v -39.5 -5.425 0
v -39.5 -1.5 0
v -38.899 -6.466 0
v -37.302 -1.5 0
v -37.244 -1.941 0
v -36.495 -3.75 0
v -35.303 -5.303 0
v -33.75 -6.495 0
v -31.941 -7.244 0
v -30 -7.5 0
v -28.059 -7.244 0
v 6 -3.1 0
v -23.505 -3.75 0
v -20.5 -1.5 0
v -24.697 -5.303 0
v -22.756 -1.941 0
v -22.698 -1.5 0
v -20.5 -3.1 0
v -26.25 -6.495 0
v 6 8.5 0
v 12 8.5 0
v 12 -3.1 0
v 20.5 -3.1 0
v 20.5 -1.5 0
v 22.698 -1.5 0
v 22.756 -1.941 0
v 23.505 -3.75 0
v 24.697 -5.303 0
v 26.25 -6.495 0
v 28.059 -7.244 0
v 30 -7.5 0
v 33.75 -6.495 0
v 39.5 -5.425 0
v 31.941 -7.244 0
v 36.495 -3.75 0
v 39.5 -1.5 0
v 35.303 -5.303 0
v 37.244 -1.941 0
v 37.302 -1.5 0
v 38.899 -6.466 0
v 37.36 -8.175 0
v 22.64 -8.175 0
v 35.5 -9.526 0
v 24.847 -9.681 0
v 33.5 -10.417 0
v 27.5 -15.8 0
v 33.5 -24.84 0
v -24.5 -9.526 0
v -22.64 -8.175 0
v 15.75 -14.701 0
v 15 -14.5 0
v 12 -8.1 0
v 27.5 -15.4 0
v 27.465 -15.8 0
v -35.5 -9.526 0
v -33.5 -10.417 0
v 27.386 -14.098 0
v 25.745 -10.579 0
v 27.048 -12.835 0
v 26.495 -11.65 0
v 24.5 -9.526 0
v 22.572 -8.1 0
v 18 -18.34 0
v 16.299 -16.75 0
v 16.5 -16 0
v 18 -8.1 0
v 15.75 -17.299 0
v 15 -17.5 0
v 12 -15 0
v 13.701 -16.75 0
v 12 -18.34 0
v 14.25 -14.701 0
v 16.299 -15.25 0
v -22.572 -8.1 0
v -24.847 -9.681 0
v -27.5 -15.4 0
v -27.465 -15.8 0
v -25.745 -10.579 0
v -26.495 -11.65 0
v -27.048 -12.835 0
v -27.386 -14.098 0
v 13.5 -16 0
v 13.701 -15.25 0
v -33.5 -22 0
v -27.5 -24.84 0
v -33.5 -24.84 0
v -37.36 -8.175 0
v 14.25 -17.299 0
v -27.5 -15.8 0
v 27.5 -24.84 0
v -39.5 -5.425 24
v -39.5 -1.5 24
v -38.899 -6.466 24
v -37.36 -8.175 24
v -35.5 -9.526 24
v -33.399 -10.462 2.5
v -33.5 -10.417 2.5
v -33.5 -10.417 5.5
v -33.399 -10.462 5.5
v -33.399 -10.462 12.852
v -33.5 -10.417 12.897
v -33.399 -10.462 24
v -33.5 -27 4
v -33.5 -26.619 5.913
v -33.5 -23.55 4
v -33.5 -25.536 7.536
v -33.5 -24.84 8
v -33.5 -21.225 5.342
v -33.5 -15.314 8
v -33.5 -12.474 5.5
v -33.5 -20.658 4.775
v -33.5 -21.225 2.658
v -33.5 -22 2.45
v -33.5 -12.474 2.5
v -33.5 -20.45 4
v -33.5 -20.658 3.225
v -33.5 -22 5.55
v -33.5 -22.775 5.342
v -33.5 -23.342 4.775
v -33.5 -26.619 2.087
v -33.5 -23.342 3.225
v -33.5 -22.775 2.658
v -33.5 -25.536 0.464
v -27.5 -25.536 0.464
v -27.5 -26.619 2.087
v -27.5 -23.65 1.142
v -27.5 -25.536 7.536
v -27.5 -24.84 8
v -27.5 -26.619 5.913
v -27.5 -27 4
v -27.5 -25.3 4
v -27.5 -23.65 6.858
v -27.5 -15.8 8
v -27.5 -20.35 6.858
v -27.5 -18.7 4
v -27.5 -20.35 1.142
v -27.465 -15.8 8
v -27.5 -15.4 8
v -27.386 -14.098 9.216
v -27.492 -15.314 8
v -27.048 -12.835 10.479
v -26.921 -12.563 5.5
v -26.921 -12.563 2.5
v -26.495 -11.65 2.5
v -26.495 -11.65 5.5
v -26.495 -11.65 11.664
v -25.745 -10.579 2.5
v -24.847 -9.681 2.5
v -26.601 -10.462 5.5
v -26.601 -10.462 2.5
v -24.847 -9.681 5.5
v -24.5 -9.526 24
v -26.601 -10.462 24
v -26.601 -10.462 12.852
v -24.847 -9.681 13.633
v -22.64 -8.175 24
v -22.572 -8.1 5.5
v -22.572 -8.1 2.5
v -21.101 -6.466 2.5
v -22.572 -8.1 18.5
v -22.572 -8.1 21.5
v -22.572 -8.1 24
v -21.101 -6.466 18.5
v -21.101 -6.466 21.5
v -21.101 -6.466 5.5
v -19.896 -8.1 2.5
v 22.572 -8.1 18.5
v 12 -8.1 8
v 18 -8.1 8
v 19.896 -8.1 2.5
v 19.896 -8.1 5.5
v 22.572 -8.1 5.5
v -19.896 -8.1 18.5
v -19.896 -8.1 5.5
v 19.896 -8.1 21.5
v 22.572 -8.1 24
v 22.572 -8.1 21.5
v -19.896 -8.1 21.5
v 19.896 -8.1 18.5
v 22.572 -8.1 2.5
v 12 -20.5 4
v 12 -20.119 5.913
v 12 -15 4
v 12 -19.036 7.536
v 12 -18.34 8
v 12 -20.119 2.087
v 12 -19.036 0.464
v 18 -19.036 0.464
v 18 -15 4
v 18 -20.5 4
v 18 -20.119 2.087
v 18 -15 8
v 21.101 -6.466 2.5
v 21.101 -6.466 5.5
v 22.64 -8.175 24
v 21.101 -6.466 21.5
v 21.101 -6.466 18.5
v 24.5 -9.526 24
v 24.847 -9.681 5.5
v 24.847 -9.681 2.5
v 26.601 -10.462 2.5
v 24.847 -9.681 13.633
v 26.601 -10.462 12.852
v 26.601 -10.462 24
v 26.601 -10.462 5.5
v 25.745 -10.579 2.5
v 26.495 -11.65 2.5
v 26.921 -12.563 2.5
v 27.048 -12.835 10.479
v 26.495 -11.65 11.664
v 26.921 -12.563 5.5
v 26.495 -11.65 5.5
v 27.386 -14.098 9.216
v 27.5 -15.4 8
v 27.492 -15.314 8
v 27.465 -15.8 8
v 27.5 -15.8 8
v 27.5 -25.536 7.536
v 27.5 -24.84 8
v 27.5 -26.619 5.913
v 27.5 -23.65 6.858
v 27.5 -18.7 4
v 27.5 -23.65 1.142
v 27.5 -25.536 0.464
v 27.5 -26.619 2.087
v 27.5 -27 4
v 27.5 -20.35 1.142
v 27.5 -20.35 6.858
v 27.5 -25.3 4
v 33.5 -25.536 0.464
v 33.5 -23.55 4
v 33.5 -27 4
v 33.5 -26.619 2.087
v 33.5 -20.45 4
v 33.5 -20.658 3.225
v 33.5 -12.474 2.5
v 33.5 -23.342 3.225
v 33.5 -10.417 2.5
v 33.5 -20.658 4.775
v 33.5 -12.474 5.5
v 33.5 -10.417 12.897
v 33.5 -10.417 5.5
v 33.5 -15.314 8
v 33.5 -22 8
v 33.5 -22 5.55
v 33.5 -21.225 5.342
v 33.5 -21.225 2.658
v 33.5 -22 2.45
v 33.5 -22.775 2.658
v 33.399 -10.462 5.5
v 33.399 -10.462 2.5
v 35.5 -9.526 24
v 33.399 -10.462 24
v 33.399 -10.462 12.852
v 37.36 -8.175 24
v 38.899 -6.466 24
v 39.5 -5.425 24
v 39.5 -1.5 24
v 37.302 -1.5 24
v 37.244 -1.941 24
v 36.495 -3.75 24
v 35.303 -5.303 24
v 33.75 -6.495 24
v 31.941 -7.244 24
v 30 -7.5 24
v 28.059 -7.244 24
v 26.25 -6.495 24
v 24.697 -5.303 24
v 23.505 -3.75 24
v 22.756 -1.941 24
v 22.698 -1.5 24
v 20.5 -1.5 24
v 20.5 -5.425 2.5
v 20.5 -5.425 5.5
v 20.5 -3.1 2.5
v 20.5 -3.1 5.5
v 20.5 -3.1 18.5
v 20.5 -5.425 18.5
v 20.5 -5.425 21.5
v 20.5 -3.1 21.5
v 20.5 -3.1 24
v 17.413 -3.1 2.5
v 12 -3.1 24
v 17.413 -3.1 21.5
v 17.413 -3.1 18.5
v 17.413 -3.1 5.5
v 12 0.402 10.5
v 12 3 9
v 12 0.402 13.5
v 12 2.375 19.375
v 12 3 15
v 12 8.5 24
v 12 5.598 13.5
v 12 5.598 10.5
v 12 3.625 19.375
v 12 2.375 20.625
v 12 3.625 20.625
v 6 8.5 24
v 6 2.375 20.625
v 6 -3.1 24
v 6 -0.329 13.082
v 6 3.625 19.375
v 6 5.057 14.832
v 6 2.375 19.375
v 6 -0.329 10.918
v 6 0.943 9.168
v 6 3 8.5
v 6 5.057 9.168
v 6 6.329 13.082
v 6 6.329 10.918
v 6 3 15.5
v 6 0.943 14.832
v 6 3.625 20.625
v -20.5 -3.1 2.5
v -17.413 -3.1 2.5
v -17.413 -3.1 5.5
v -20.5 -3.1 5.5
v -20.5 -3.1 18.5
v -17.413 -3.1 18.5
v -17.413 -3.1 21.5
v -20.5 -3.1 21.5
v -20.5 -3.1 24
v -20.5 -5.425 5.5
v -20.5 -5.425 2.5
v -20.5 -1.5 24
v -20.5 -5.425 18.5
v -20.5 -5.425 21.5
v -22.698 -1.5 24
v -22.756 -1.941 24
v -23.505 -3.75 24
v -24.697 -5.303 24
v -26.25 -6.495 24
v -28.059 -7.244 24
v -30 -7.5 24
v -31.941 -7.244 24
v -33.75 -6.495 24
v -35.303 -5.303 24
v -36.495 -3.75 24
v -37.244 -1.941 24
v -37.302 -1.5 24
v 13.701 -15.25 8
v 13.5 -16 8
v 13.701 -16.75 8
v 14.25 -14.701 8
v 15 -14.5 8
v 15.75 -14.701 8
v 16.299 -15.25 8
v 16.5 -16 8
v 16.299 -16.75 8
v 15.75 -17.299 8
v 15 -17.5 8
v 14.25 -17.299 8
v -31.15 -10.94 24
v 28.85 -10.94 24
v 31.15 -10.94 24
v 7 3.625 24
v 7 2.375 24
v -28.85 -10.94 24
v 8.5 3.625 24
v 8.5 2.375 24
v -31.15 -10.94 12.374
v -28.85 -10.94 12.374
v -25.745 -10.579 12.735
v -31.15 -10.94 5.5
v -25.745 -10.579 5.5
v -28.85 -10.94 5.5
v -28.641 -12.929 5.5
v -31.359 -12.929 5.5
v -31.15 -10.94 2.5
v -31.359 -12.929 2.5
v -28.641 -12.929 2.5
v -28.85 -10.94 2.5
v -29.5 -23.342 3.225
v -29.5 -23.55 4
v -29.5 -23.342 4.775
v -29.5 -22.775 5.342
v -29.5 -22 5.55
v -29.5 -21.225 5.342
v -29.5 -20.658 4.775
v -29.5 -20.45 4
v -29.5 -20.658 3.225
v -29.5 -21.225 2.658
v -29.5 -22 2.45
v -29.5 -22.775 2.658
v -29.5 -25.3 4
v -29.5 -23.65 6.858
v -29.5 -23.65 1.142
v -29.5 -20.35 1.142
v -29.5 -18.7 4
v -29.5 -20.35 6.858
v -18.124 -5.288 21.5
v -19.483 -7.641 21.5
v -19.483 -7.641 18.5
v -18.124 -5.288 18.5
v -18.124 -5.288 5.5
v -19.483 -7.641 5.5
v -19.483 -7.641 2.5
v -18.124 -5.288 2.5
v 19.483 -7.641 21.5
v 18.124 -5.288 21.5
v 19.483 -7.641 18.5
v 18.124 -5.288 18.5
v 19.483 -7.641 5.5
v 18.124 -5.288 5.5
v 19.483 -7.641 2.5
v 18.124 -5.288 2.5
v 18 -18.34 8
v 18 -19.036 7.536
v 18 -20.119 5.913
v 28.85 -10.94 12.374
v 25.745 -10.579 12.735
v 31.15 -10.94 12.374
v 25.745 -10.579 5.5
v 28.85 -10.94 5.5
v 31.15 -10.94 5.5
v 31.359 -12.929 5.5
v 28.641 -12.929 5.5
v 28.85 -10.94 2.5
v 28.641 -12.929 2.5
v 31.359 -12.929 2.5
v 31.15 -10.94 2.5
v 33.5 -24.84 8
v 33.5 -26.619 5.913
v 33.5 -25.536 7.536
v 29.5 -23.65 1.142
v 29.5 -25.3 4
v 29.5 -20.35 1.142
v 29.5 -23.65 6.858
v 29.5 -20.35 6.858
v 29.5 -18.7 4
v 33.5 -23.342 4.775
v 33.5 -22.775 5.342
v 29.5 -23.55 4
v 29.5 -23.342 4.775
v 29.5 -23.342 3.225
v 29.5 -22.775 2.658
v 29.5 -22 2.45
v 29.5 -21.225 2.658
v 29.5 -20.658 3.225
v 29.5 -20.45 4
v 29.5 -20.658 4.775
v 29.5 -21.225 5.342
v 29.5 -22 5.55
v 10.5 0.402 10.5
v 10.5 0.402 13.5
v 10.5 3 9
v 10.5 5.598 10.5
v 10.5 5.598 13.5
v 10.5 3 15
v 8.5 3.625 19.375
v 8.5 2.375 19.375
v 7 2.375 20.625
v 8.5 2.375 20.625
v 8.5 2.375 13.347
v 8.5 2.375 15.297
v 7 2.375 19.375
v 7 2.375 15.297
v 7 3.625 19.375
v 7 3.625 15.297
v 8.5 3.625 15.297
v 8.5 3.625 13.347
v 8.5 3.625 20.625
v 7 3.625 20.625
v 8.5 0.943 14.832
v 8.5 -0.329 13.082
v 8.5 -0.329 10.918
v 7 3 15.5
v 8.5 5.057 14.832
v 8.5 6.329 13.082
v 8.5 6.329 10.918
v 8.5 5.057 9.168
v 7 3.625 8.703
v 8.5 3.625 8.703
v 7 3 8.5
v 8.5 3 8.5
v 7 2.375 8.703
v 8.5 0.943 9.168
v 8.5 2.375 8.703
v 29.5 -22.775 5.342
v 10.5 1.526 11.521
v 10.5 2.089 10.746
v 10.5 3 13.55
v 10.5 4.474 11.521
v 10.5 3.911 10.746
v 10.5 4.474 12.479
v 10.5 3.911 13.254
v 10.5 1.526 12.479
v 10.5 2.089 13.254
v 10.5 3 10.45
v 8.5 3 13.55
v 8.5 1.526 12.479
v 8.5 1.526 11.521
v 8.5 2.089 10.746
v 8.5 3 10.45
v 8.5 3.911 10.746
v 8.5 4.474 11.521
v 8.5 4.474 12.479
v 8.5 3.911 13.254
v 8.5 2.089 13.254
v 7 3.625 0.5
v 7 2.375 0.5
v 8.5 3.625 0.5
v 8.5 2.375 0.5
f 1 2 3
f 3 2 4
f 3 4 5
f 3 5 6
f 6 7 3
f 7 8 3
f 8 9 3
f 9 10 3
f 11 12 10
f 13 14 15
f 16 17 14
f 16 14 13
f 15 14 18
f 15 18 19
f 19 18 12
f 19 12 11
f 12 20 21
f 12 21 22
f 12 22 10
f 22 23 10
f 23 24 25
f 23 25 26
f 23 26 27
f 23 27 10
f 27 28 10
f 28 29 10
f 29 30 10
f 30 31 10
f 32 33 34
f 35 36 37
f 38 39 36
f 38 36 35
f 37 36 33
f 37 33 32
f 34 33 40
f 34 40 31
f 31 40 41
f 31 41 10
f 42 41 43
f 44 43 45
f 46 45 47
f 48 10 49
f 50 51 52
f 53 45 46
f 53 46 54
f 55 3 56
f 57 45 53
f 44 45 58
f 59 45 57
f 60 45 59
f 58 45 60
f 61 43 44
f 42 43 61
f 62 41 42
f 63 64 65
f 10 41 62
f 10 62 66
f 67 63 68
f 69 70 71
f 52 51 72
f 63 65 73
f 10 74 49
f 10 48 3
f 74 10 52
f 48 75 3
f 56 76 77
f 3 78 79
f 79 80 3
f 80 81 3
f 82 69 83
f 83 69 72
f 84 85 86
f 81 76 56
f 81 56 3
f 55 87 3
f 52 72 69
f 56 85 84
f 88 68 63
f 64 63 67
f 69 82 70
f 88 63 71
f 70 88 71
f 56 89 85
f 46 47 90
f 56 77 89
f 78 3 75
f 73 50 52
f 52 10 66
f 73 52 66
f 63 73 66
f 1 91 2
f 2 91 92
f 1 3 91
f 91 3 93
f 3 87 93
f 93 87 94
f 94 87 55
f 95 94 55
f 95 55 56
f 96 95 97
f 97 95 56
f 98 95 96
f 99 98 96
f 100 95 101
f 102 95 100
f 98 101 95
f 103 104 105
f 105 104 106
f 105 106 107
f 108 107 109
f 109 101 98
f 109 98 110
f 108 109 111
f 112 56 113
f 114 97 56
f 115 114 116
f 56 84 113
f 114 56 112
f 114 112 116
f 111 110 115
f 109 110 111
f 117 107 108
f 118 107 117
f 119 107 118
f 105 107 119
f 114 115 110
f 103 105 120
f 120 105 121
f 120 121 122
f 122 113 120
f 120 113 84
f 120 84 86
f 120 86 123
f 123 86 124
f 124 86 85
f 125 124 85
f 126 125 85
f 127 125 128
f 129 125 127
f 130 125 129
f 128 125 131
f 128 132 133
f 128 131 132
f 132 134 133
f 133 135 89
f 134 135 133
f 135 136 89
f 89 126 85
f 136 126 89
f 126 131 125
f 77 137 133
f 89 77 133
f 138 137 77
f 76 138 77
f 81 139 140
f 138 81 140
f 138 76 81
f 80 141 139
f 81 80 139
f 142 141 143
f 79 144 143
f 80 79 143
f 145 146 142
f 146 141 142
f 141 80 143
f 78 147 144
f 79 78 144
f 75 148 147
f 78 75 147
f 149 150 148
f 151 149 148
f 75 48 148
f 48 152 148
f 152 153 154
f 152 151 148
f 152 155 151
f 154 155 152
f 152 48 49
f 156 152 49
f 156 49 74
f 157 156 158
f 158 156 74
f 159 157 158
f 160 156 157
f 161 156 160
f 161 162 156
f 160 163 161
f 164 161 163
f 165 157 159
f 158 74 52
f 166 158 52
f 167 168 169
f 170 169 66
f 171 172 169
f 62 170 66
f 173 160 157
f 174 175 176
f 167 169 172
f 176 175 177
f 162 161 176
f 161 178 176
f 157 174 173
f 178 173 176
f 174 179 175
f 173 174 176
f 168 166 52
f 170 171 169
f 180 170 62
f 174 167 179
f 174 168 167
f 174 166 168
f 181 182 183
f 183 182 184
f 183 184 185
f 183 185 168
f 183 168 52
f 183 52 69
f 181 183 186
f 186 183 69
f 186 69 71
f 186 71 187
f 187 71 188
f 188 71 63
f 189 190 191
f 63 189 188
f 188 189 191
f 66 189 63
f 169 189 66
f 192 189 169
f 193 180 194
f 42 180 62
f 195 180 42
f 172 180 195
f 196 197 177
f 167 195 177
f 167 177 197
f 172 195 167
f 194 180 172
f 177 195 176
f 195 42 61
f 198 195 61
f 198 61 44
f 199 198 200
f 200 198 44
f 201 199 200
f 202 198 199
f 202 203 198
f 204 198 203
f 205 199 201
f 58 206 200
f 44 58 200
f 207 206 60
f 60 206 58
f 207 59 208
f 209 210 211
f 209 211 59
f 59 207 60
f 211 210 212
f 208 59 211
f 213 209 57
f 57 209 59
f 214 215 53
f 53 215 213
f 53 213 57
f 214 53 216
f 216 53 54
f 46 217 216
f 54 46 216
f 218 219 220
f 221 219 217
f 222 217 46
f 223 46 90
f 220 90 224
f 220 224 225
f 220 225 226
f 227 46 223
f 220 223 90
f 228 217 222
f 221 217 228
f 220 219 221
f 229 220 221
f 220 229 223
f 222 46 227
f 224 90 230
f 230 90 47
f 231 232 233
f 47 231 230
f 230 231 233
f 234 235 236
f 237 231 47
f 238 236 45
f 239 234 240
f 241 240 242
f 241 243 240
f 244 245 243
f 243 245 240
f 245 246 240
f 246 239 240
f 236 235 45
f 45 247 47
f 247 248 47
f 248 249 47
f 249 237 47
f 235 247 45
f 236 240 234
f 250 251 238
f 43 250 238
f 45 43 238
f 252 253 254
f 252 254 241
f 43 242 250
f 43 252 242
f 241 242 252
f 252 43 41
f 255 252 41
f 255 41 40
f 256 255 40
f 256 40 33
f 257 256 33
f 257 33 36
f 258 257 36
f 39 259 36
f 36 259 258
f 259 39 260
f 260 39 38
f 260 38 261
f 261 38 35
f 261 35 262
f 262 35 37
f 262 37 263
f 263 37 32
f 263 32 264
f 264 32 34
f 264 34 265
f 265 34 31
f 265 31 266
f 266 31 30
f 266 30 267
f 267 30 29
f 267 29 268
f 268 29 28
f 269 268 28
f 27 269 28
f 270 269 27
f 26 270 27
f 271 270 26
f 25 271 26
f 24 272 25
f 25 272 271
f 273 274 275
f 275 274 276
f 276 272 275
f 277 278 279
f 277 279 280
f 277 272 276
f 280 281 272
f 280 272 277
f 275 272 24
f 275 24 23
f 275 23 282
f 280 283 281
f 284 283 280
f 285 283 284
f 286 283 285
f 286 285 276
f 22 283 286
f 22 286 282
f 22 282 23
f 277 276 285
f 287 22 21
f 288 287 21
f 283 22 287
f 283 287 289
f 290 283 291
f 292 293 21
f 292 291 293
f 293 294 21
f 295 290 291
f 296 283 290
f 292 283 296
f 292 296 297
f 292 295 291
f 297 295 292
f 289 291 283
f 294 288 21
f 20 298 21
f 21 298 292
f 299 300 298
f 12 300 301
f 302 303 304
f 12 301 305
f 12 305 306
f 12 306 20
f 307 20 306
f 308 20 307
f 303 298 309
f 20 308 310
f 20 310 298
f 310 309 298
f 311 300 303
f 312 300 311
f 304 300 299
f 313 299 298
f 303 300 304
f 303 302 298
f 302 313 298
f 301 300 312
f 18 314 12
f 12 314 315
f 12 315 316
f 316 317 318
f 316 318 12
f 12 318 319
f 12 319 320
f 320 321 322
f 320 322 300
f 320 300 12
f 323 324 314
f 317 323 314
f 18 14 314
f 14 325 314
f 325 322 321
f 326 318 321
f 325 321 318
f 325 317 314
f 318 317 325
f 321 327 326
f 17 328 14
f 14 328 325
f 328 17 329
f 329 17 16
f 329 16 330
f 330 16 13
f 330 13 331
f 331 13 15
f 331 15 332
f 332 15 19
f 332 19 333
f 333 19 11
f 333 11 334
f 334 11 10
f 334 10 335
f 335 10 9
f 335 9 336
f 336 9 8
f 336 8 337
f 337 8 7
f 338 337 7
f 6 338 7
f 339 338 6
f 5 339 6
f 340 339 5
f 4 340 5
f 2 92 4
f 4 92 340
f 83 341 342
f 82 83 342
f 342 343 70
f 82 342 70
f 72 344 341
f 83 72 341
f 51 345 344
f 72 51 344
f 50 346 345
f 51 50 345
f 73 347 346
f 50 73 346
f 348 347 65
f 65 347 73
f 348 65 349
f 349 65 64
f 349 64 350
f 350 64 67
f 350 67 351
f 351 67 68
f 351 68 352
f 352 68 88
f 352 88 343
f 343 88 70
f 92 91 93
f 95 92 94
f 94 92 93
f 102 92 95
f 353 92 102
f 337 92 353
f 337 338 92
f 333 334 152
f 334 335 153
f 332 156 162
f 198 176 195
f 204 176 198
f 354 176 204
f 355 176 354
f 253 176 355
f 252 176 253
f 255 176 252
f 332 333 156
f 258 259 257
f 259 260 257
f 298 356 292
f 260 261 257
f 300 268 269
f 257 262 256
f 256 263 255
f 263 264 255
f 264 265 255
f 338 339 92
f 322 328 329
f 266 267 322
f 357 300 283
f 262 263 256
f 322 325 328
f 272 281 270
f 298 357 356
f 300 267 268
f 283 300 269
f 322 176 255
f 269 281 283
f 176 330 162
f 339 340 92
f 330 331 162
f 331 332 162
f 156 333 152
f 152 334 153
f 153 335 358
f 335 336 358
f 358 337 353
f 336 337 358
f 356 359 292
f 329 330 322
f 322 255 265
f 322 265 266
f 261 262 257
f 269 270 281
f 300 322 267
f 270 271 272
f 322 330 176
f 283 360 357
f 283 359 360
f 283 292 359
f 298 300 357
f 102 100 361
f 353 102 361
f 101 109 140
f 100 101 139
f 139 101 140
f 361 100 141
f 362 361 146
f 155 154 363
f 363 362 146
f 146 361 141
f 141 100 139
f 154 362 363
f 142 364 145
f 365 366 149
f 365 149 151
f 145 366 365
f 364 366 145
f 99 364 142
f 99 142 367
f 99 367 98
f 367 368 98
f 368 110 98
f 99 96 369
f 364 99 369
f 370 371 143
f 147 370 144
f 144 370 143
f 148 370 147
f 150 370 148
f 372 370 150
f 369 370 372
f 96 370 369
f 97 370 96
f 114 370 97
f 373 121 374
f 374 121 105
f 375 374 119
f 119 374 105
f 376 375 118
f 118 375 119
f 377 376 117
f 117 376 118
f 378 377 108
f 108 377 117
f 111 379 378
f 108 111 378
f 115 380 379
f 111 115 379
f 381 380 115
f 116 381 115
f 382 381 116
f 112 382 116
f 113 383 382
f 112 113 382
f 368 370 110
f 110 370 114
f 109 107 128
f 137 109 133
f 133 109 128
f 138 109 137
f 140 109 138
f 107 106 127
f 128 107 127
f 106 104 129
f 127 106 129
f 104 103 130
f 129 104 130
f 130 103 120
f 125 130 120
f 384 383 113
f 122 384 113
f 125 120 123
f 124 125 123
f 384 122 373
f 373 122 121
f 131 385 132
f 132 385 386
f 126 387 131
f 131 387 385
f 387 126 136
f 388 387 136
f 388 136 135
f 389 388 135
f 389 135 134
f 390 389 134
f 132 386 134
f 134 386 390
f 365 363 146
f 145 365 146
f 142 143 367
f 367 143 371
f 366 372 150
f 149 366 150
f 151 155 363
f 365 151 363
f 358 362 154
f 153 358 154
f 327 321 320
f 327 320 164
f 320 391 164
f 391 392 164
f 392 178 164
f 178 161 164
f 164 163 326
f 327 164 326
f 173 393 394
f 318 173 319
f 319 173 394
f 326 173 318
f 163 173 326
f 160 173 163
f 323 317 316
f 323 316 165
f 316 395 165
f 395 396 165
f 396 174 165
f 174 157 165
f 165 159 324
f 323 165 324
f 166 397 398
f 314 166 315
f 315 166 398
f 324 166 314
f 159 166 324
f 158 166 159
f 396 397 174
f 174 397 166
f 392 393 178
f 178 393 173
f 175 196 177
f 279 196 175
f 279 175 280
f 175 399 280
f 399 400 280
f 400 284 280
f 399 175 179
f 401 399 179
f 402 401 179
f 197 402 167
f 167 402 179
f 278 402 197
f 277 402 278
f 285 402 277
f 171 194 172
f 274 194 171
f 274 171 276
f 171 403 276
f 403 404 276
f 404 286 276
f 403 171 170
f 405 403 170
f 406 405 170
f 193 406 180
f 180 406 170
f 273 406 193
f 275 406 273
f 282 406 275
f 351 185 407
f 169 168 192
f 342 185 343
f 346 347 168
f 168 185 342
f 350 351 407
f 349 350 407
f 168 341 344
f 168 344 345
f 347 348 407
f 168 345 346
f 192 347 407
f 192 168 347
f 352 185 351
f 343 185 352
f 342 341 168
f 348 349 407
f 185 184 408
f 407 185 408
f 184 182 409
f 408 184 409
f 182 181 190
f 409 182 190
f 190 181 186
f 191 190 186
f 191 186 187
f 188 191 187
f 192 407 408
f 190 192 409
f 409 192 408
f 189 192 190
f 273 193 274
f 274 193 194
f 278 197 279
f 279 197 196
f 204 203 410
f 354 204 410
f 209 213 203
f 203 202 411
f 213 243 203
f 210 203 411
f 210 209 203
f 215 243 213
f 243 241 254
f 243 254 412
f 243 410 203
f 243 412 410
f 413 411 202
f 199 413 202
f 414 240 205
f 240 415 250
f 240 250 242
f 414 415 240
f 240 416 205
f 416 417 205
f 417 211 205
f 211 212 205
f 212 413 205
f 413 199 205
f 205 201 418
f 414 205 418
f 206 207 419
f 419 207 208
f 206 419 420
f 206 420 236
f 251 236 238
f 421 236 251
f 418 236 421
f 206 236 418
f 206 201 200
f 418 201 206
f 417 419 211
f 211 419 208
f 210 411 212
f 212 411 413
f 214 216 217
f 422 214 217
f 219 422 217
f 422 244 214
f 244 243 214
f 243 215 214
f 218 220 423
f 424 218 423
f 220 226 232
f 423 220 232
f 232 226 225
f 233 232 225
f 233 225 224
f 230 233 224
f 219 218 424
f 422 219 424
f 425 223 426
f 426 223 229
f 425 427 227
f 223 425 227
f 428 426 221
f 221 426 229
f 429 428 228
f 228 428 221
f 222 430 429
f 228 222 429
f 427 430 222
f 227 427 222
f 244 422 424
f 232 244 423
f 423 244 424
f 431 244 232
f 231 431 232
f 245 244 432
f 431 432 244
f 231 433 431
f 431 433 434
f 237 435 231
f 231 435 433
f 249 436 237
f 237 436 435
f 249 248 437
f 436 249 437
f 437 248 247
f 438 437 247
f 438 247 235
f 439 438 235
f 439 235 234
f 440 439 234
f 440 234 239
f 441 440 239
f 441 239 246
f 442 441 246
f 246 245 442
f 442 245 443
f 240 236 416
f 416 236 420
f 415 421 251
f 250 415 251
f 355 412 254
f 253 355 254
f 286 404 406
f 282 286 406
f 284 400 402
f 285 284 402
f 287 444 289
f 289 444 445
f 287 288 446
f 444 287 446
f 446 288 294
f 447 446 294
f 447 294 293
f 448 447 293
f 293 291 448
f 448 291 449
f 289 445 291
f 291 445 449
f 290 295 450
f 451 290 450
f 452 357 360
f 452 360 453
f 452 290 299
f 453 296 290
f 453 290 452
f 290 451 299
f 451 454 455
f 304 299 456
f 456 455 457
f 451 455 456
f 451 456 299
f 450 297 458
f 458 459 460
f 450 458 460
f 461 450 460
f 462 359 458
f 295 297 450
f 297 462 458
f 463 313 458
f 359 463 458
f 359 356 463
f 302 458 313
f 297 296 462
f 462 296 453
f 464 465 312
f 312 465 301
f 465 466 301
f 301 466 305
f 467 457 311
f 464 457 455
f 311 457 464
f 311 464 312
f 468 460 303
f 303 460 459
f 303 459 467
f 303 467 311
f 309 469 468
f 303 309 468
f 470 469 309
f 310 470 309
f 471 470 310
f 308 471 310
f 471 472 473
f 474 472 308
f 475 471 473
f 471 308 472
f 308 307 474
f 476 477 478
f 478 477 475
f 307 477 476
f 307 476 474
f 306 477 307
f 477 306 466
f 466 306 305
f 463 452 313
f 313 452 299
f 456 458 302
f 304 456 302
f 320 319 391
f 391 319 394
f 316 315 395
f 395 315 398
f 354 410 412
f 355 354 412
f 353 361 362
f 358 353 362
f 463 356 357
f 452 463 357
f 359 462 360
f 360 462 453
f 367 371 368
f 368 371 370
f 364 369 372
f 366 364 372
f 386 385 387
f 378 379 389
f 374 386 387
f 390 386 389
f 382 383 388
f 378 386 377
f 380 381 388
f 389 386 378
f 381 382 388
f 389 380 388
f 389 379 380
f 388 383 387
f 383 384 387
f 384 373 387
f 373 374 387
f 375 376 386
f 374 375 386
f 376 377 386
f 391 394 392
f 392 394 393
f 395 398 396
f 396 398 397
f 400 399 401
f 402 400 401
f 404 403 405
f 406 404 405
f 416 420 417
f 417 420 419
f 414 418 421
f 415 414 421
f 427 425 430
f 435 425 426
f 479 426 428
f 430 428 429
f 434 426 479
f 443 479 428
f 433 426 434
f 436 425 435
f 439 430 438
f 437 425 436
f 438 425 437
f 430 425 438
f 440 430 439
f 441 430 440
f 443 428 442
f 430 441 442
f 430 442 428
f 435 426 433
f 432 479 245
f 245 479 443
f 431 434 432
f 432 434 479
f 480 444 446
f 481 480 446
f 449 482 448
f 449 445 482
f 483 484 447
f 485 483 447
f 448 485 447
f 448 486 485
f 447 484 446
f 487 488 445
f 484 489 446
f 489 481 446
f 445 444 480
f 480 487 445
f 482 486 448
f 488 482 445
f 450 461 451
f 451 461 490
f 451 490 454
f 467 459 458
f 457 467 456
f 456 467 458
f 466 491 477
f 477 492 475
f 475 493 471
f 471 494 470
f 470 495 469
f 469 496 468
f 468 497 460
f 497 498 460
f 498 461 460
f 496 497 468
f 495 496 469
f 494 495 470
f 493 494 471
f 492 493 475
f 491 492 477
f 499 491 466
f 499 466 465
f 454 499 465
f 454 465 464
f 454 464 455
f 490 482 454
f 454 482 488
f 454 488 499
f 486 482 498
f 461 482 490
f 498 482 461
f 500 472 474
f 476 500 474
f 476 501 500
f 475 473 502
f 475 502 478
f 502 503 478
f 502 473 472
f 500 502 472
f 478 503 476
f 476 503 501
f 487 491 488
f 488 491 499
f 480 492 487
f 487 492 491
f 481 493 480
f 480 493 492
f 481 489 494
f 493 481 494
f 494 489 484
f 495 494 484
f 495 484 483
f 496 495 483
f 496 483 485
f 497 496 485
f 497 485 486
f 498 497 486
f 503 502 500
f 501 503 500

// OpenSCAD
// file: configuration.scad
motor_end_height=44;
idler_end_height=28;
carriage_height=24;
platform_thickness=8;
bed_thickness=12;
pcb_thickness=2;
rod_length=120;
smooth_rod_length=300;
tower_radius = 120;
platform_hinge_offset=33;
carriage_hinge_offset=22;



//from kossel legacy
// Increase this if your slicer or printer make holes too tight.
extra_radius = 0.15;

// OD = outside diameter, corner to corner.
m3_nut_od = 6.1;
m3_nut_radius = m3_nut_od/2 + 0.2 + extra_radius;

// Major diameter of metric 3mm thread.
m3_major = 2.85;
m3_radius = m3_major/2 + extra_radius;
m3_wide_radius = m3_major/2 + 0.2 + extra_radius;

// NEMA17 stepper motors.
motor_shaft_diameter = 5;
motor_shaft_radius = motor_shaft_diameter/2 + extra_radius;

// Frame brackets.
thickness = 3.6;
// main file
include <configuration.scad>

width = 67;
height = carriage_height;

offset = 20;
cutout = 15;
middle = 2*offset - width/2;

module parallel_joints(reinforced) {
  difference() {
    union() {
      intersection() {
        cube([width, 20, 8], center=true);
        rotate([0, 90, 0]) cylinder(r=5, h=width, center=true);
      }
      intersection() {
        translate([0, 18, 4]) rotate([45, 0, 0])
          cube([width, reinforced, reinforced], center=true);
        translate([0, 0, 20]) cube([width, 35, 40], center=true);
      }
      translate([0, 8, 0]) cube([width, 16, 8], center=true);
    }
    rotate([0, 90, 0]) cylinder(r=1.55, h=80, center=true, $fn=12);

    for (x = [-offset, offset]) {
      translate([x, 6.6, 0])
        cylinder(r=cutout/2, h=100, center=true, $fn=36);
      translate([x, -3.8, 0])
        cube([cutout, 20, 100], center=true);
      translate([x, 0, 0]) rotate([0, 90, 0]) rotate([0, 0, 30])
        cylinder(r=3.3, h=19, center=true, $fn=6);
    }
    translate([0, 4, 0])
      cube([2*offset+7, 20, 100], center=true);
    //translate([0, 2, 0]) cylinder(r=middle, h=100, center=true);
    //translate([0, -8, 0]) cube([2*middle, 20, 100], center=true);
  }
}

module lm8uu_mount(d, h) {
  union() {
    difference() {
      intersection() {
        cylinder(r=11, h=h, center=true);
        translate([0, -8, 0]) cube([19, 13, h+1], center=true);
      }
      cylinder(r=d/2, h=h+1, center=true);
    }
  }
}

module Spectra_Line_Mount() {
  difference() {
    union() {
      difference() {
       	translate([9, 2, 0]) cube([6, 13, height], center=true); //The main support

        translate([8,3,0]) rotate([0,90,0]) cylinder(r=1.55, h=10,center=true, $fn = 10); //3mm screw hole
	translate([3.5,3,0]) rotate([0,90,0]) cylinder(r=3.5,h=10,center=true, $fn = 10);  //3mm washer tensioner space
	translate([11.5,3,0]) rotate([0,90,0]) cylinder(r=3,h=2,center=true, $fn=6);

	translate([7.75,3,3.5]) cube([1.5,1.25,30],center=true); //Spectra line hole space
	translate([9,3,8]) cube([7,1.25,1.25],center=true);
      }
    }
  }
}

module carriage() {
  translate([0, 0, height/2]) 
  union() {
    for (x = [-30, 30]) {
      translate([x, 0, 0]) lm8uu_mount(d=15, h=24);
    }
    Spectra_Line_Mount();
    difference() {
      union() {
        translate([0, -5.6, 0])
          cube([50, 5, height], center=true);
        translate([0, -carriage_hinge_offset, -height/2+4])
          parallel_joints(16);
        // endstop column
        translate([15, -10, -height/2+4])
          cube([6, 10, 8], center=true);
        translate([15, -15.5, -height/2+4])
          intersection() {
            cube([6, 20, 8], center=true);
            rotate([0, 90, 0]) cylinder(r=5, h=6, center=true);
          }
      }
      // Screw hole for adjustable top endstop.
      translate([15, -16, -height/2+4])
        cylinder(r=1.5, h=20, center=true, $fn=12);
      for (x = [-30, 30]) {
        translate([x, 0, 0])
          cylinder(r=8, h=height+1, center=true);
        // Zip tie tunnels.
        for (z = [-height/2+4, height/2-4])
          translate([x, 0, z])
            cylinder(r=13, h=3, center=true);
      }
    }
  }
}

carriage();
//parallel_joints(0);

// Uncomment the following lines to check endstop alignment.
// use <idler_end.scad>;
// translate([0, 0, -20]) rotate([180, 0, 0]) idler_end();
